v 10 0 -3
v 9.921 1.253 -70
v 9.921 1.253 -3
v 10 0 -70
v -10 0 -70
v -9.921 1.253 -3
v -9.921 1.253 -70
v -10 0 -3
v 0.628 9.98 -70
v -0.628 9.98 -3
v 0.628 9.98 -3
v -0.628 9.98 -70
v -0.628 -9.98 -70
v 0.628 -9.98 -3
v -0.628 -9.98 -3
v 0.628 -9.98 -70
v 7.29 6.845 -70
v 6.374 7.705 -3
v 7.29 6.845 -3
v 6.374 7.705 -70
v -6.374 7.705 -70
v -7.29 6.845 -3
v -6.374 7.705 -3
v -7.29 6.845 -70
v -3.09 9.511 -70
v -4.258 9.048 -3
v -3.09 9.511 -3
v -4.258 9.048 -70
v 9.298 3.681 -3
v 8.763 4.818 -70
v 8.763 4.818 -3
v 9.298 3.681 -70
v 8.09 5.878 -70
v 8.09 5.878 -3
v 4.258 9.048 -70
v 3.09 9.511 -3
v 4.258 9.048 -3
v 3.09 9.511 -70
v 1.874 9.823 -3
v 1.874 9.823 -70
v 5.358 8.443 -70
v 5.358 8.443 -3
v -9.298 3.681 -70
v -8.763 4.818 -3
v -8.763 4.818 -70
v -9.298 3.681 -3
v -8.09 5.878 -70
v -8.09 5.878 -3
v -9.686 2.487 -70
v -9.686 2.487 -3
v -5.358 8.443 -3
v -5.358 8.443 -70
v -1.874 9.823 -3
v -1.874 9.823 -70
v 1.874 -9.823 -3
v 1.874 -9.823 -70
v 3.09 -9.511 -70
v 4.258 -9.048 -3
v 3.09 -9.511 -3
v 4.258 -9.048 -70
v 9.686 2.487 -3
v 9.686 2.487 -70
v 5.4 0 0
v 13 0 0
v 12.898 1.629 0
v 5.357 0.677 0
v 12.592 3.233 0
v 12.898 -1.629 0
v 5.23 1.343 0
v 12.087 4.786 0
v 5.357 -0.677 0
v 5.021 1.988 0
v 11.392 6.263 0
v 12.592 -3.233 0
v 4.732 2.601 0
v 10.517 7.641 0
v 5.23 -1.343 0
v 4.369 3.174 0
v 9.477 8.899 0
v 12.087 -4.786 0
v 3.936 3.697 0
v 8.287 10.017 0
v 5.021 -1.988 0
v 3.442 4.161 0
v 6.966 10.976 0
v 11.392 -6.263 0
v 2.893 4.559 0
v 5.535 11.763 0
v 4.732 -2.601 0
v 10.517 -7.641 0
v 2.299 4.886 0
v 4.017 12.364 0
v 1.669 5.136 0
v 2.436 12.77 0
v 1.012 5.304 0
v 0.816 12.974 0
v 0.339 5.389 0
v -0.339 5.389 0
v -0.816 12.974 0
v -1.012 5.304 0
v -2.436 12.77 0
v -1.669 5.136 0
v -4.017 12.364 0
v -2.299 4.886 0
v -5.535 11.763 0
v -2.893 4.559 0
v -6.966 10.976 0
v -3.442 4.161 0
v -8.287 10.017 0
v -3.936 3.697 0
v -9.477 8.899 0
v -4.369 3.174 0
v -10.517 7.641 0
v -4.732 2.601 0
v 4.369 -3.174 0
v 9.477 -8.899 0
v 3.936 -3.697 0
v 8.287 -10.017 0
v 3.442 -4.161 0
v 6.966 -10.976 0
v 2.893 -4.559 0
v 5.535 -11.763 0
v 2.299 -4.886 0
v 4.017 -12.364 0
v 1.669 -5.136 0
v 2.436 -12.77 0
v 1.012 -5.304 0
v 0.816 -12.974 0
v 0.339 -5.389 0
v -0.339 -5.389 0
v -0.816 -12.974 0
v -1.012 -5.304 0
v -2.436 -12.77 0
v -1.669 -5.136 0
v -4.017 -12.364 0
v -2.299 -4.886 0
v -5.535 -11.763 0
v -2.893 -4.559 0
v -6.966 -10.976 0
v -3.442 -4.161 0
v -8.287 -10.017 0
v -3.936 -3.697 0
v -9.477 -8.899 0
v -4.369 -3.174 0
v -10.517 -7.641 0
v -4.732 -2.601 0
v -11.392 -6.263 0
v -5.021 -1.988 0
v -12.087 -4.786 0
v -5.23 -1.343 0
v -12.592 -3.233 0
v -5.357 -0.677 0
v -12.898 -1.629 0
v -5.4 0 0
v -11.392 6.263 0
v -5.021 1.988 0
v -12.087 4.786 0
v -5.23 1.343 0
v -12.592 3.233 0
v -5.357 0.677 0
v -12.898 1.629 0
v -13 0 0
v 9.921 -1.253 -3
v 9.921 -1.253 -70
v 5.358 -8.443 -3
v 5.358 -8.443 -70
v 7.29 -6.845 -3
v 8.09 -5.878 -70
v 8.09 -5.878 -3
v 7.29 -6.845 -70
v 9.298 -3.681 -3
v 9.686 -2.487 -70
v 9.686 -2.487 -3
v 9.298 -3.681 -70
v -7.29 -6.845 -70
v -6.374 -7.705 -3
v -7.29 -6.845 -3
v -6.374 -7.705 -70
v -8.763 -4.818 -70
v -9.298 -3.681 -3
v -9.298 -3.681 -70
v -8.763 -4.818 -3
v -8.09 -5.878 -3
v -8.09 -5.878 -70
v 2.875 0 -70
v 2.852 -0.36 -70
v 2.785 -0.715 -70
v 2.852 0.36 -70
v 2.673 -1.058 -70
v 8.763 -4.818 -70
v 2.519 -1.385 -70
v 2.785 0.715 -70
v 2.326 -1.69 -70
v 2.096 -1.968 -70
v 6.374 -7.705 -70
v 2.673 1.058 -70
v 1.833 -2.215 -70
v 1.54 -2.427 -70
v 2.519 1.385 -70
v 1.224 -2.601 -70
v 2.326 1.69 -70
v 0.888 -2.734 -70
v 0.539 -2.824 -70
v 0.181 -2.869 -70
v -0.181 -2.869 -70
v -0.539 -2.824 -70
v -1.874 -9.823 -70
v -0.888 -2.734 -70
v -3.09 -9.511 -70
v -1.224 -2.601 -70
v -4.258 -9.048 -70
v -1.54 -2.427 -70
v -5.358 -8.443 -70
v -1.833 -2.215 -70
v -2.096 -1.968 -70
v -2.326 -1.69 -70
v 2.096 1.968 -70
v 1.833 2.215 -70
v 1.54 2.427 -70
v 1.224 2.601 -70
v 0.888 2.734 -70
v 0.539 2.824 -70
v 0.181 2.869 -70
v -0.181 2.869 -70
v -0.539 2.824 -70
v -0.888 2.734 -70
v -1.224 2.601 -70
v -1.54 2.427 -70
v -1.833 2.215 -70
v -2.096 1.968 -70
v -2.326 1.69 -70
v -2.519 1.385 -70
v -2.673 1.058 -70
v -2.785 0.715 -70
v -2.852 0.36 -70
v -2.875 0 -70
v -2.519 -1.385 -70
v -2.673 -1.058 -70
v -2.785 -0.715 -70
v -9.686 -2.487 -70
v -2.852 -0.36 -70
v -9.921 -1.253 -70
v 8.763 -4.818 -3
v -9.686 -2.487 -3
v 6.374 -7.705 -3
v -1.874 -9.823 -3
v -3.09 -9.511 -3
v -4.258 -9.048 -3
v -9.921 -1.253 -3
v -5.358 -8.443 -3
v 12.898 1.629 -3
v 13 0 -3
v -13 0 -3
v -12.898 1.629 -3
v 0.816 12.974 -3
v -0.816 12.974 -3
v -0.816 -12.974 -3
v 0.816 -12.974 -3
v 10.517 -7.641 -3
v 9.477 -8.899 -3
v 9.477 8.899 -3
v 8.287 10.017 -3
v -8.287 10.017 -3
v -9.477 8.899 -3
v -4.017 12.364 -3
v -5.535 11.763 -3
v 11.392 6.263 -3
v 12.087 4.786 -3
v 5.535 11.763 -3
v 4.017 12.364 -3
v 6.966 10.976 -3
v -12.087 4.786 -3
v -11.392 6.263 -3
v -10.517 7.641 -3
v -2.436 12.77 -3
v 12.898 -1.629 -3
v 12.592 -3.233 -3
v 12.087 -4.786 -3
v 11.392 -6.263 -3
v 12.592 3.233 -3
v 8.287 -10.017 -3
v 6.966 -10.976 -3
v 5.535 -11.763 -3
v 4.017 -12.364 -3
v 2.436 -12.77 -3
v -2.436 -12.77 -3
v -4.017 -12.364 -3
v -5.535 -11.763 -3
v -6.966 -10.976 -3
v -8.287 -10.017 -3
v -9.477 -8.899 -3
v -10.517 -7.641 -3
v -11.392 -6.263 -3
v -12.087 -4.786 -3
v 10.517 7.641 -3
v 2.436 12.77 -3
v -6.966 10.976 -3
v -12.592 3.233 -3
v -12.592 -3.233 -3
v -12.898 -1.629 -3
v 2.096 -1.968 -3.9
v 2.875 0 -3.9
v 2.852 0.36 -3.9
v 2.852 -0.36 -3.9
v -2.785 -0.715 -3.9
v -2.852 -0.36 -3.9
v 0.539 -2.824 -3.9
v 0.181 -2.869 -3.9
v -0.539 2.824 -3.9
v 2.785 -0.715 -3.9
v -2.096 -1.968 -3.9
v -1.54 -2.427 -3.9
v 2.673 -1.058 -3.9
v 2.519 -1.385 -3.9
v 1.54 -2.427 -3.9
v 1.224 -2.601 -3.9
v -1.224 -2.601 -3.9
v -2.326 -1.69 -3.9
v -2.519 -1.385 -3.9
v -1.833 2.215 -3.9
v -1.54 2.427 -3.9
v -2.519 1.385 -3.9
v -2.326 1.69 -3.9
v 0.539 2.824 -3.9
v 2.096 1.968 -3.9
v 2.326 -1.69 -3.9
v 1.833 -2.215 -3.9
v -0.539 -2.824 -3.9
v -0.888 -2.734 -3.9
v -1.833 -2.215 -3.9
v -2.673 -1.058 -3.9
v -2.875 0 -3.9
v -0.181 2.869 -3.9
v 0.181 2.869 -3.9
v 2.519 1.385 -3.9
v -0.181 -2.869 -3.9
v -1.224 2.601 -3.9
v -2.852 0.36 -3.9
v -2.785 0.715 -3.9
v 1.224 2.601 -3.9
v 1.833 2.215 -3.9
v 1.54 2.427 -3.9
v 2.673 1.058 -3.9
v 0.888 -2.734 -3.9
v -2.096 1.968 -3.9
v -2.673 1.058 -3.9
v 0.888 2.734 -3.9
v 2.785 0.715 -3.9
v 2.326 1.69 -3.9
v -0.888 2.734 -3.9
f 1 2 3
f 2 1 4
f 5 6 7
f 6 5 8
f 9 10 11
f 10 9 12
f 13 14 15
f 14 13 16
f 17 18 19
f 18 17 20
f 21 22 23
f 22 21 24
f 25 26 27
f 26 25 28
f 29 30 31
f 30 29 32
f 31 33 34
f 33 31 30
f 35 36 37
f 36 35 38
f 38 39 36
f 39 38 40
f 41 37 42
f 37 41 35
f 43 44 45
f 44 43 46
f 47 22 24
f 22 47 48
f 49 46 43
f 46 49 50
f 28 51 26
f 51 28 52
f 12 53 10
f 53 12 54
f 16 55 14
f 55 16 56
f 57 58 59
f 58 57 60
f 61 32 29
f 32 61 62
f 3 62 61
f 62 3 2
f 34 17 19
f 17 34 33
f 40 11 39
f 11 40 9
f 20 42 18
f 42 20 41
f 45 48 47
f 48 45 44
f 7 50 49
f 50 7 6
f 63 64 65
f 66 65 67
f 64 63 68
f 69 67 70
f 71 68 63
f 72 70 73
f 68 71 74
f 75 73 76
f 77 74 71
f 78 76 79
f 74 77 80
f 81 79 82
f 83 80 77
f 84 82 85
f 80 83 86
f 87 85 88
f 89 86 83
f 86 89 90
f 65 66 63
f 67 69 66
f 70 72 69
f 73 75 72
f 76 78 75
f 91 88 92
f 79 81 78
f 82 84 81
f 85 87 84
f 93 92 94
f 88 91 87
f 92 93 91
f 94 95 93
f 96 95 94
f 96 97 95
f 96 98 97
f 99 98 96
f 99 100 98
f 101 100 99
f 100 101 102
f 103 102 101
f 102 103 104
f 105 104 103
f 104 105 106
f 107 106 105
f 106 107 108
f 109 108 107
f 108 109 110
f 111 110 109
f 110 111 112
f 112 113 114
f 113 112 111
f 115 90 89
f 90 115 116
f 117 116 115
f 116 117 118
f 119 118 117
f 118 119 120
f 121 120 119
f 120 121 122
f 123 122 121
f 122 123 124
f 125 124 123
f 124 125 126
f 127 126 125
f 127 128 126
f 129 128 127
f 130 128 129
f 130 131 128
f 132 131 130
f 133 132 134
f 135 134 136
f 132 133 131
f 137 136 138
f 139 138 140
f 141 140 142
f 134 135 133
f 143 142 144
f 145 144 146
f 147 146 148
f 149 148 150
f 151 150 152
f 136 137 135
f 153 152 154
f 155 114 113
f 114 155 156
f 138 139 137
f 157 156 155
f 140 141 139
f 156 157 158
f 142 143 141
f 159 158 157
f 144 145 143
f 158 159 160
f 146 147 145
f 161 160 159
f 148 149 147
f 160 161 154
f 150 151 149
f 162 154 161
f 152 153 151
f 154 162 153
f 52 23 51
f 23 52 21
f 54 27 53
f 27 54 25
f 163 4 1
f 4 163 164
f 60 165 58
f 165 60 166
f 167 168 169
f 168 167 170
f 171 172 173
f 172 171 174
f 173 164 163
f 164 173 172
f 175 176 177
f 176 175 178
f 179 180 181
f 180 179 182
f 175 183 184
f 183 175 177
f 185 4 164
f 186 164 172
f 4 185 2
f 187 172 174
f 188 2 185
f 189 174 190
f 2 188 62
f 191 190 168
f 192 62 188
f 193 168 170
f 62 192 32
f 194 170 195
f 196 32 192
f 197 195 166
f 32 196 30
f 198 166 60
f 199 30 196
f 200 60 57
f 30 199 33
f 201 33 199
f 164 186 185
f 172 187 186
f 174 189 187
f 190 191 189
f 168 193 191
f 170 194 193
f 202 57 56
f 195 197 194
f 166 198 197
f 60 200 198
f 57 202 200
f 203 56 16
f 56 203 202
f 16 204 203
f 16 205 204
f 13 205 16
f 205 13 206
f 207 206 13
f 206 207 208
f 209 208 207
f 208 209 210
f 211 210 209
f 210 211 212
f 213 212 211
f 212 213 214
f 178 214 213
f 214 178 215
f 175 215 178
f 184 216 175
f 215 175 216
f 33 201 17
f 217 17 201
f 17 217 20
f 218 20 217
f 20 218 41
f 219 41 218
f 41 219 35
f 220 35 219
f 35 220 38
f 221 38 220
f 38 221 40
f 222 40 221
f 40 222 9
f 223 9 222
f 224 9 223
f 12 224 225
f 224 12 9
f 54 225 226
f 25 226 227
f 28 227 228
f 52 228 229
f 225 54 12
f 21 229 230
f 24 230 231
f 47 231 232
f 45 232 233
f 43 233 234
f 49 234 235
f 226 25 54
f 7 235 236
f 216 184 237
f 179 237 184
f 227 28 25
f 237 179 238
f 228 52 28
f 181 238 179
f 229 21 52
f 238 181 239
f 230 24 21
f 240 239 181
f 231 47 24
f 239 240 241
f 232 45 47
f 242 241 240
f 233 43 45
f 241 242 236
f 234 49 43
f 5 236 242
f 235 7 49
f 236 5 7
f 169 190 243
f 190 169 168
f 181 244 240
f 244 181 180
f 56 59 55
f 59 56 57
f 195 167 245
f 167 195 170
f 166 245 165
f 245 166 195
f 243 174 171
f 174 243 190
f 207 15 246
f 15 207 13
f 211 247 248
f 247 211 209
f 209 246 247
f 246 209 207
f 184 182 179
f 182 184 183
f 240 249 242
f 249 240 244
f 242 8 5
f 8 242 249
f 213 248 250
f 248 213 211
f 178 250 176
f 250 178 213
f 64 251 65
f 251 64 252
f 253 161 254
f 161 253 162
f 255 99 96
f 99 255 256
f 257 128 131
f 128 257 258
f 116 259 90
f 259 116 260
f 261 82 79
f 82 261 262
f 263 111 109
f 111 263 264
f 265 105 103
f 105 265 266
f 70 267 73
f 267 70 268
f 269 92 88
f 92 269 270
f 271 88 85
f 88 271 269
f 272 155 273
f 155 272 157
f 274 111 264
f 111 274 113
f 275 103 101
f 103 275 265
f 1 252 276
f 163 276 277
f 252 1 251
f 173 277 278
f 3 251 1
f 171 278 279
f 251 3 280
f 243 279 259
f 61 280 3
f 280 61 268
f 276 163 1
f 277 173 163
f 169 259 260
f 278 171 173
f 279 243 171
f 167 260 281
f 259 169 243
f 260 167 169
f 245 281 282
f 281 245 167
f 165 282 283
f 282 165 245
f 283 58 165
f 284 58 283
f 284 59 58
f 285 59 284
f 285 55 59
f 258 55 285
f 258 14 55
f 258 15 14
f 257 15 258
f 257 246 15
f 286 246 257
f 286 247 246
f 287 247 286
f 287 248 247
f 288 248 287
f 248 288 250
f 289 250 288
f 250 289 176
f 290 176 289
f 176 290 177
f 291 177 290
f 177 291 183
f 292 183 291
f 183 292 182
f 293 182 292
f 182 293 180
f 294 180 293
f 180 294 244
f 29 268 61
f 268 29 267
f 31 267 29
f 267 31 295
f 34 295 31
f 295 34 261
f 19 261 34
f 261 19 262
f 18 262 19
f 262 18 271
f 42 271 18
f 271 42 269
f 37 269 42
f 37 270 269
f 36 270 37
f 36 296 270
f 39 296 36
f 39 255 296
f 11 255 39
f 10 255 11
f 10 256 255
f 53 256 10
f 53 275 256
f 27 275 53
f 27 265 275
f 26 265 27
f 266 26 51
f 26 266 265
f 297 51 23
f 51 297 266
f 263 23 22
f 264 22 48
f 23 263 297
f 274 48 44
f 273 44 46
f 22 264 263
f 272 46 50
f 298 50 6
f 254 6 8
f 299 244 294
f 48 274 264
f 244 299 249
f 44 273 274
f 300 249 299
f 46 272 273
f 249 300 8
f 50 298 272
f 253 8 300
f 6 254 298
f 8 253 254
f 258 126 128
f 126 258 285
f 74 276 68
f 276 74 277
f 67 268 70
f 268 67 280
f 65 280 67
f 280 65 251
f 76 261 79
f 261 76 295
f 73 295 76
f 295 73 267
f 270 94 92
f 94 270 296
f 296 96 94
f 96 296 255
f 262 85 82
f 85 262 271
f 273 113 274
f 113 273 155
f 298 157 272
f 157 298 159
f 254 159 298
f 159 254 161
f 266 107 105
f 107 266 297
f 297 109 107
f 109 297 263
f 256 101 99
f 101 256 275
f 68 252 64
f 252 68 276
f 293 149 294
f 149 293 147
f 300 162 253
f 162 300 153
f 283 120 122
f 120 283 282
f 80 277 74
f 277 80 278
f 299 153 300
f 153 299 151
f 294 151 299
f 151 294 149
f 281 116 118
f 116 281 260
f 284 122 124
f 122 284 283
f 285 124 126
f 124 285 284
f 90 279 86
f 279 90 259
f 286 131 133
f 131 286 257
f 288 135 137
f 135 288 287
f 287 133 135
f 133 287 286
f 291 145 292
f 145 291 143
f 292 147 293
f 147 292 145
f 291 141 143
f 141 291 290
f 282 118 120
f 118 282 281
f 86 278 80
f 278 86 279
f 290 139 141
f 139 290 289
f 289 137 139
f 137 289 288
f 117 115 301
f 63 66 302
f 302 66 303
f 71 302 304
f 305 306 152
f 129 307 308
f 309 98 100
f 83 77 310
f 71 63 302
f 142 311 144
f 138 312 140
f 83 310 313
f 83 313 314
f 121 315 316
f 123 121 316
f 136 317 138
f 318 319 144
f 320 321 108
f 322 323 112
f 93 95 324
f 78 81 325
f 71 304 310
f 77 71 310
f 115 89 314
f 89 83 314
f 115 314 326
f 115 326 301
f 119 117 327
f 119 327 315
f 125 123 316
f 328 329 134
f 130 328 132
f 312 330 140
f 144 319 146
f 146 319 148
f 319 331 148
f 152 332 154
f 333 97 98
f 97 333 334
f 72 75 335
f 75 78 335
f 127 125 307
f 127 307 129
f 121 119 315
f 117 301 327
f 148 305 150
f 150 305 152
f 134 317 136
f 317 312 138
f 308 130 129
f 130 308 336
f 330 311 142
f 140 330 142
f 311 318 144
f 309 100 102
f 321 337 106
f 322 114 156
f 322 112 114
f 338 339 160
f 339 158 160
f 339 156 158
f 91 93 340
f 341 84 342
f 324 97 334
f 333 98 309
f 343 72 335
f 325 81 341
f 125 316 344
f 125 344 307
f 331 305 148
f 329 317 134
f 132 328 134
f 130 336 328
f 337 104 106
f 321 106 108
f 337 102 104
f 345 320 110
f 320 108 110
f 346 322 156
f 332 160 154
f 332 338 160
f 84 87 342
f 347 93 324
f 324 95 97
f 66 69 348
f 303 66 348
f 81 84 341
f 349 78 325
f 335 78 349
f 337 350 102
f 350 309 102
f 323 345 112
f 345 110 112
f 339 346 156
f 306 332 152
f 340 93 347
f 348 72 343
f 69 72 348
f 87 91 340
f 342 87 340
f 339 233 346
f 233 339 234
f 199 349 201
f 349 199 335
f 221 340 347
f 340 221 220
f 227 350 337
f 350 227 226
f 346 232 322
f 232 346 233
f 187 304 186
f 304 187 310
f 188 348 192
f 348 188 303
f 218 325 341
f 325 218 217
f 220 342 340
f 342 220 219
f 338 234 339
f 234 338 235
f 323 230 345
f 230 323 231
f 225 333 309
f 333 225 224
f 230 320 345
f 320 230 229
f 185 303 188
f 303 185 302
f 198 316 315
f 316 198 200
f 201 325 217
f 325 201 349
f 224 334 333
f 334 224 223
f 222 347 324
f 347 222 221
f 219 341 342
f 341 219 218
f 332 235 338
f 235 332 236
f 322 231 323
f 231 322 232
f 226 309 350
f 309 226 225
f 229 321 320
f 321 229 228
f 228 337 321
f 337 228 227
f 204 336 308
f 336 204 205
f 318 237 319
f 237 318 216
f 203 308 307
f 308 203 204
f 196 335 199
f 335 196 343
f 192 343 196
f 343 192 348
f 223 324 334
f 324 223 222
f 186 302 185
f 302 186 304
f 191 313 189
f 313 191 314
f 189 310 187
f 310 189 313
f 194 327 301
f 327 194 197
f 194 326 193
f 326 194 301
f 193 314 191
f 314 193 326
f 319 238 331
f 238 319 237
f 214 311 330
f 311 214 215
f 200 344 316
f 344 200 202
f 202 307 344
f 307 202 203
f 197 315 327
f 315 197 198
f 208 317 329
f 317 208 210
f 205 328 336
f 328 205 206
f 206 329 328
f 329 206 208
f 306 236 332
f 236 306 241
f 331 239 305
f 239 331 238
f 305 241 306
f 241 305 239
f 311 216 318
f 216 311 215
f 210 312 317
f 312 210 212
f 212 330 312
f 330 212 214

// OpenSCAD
$fn = 50;


difference() {
	union() {
		translate(v = [0, 0, -70.0000000000]) {
			cylinder(h = 70, r = 10.0000000000);
		}
		translate(v = [0, 0, -3.0000000000]) {
			cylinder(h = 3, r = 13.0000000000);
		}
	}
	union() {
		translate(v = [0, 0, 0]) {
			rotate(a = [0, 0, 0]) {
				difference() {
					union() {
						#translate(v = [0, 0, -70.0000000000]) {
							cylinder(h = 70, r = 2.6000000000);
						}
						#translate(v = [0, 0, -3.9000000000]) {
							cylinder(h = 3.9000000000, r1 = 2.8750000000, r2 = 5.4000000000);
						}
						#translate(v = [0, 0, -70.0000000000]) {
							cylinder(h = 70, r = 2.8750000000);
						}
						#translate(v = [0, 0, -70.0000000000]) {
							cylinder(h = 70, r = 2.6000000000);
						}
					}
					union();
				}
			}
		}
	}
}
